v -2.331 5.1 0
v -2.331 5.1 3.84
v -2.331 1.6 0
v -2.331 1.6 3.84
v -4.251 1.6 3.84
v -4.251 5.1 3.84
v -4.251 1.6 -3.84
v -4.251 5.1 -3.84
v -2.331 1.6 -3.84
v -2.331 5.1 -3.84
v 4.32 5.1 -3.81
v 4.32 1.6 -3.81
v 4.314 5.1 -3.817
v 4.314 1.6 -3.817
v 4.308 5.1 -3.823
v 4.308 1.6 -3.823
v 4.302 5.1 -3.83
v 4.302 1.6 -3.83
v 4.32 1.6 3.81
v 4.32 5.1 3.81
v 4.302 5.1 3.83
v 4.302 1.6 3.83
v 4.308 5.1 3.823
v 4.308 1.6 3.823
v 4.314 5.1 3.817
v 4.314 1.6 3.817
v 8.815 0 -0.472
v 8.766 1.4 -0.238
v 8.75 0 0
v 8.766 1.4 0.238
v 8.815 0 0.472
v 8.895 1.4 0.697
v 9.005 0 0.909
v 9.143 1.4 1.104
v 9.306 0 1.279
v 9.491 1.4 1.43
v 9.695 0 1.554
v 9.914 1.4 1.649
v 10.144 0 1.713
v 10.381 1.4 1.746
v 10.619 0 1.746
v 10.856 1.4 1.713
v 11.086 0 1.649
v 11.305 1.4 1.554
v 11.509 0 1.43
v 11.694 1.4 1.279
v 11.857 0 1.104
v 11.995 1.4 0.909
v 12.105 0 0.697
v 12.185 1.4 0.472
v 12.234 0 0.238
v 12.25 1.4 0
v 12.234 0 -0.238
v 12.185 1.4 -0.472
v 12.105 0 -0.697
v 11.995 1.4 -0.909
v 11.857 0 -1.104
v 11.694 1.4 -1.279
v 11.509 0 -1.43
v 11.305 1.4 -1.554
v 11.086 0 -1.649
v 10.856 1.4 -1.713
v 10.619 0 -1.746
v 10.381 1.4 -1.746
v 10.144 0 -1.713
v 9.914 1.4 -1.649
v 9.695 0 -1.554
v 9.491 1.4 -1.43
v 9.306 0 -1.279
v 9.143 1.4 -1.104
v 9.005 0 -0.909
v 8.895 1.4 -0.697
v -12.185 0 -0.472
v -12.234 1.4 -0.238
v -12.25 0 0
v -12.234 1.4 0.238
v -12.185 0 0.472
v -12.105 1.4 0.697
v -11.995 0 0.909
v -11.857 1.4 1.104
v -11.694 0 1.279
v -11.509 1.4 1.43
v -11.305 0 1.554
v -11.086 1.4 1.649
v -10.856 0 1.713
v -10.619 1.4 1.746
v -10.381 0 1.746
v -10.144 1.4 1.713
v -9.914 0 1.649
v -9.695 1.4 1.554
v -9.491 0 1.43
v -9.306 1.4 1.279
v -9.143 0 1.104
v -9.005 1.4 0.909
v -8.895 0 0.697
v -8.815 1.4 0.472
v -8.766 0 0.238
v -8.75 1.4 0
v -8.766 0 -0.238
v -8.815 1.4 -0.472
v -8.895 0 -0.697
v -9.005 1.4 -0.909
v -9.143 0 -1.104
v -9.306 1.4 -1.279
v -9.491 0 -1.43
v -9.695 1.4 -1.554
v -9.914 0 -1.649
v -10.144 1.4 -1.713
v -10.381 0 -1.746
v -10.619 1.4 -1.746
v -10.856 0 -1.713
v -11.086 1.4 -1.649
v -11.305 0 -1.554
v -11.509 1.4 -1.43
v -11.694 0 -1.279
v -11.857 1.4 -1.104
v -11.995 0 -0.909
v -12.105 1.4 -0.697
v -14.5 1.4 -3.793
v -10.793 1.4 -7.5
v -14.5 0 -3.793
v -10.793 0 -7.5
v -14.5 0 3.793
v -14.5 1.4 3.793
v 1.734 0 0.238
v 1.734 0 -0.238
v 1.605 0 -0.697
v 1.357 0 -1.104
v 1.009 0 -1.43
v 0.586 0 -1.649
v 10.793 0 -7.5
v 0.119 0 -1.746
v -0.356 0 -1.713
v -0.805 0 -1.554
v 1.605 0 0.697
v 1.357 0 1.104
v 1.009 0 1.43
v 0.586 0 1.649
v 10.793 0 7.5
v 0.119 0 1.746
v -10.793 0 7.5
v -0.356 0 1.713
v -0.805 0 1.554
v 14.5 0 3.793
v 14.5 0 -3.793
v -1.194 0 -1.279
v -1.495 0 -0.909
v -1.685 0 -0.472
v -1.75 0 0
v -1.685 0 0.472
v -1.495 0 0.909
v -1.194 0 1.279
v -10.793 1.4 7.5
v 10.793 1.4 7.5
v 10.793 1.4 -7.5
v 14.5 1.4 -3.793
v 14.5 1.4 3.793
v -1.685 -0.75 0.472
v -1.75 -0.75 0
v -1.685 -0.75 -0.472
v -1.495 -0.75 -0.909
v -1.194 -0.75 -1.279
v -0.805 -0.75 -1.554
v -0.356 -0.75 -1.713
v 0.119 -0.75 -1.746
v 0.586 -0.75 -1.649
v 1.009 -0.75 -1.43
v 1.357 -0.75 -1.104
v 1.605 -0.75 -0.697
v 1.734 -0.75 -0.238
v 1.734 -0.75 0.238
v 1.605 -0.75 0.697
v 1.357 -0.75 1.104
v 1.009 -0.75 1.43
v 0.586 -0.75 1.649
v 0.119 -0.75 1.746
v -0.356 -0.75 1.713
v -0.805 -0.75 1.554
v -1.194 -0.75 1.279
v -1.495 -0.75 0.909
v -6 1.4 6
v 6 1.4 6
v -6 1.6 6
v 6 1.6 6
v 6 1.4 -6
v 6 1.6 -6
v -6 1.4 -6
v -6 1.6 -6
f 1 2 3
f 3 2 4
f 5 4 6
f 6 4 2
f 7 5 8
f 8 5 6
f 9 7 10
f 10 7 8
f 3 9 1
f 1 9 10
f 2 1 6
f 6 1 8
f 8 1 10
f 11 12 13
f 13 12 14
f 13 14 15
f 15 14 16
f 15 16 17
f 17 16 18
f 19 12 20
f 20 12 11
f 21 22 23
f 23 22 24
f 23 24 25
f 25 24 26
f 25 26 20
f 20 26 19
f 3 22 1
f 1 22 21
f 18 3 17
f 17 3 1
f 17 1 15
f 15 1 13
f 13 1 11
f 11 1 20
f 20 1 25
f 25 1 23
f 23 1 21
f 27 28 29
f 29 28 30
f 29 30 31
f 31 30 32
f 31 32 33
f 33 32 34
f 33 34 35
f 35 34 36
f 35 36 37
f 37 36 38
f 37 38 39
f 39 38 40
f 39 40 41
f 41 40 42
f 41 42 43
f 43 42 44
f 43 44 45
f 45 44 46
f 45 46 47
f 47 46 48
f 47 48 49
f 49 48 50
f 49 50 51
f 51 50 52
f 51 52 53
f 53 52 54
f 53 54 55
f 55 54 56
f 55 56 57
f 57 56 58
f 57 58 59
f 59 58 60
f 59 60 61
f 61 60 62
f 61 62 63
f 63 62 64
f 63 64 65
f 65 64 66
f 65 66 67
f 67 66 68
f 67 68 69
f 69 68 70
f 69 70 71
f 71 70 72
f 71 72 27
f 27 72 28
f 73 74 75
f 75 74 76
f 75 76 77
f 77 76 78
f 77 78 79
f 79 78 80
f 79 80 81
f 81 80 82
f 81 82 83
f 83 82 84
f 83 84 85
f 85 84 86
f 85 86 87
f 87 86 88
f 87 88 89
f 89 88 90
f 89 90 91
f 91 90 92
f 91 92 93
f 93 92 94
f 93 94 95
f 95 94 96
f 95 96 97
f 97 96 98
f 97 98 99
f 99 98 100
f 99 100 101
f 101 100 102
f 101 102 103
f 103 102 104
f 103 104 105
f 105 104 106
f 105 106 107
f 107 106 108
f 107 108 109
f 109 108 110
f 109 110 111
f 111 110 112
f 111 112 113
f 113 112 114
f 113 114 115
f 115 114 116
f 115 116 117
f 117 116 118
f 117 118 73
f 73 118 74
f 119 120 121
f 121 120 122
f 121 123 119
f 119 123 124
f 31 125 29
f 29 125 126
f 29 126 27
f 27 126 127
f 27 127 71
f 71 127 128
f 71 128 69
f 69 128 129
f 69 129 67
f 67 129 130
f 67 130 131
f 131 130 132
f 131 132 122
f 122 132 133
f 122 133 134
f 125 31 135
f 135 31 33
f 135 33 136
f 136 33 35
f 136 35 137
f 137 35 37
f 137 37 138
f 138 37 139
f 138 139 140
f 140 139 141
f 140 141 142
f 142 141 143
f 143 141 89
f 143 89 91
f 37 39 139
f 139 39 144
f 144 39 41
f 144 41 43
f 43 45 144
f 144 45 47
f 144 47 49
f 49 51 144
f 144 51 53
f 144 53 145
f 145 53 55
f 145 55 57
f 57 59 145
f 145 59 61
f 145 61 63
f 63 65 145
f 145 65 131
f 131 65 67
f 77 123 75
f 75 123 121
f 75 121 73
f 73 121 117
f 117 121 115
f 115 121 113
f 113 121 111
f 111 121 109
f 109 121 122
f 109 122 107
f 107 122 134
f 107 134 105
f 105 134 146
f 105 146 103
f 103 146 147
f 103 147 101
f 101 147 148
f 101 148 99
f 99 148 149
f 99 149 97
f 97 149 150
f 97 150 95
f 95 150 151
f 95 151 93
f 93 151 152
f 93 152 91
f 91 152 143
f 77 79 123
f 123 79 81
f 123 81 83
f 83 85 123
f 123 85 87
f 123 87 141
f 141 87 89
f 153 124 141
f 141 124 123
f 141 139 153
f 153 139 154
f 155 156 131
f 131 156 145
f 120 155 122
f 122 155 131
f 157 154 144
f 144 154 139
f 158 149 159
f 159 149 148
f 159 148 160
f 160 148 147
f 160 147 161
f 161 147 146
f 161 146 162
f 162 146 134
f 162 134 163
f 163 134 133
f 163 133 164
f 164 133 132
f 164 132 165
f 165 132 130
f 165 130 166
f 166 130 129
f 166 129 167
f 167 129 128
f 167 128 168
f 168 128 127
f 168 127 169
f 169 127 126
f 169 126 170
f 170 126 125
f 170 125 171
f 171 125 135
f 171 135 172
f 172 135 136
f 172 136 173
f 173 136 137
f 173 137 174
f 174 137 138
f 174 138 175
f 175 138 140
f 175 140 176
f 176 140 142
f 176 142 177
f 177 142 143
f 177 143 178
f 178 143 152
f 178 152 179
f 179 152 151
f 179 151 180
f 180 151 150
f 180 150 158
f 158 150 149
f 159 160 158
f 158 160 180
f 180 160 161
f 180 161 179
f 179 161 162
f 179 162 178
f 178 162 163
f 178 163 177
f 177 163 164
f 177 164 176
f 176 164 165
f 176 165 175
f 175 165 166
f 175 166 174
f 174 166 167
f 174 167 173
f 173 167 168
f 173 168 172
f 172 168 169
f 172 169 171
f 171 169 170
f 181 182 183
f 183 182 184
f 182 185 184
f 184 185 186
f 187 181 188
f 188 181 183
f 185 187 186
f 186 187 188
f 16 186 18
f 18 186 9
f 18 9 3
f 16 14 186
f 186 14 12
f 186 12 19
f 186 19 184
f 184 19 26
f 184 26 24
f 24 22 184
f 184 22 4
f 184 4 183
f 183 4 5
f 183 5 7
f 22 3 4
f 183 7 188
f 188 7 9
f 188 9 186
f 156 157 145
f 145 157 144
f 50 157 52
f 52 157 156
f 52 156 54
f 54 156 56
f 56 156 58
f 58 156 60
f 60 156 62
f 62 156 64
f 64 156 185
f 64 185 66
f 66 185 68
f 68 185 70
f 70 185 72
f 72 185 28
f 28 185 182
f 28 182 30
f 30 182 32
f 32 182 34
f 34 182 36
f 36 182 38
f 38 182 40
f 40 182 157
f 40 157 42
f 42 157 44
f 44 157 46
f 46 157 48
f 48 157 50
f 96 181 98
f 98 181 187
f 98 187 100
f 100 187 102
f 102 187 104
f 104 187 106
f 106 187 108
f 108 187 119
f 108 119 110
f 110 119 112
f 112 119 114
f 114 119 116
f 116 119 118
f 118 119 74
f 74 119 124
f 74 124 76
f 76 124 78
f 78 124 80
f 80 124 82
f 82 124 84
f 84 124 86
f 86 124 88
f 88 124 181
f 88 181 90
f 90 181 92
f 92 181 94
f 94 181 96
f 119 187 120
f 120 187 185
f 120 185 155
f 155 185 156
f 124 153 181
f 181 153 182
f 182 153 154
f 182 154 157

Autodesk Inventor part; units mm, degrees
ref_plane "YZ Plane" through (0, 0, 0) normal (1, 0, 0) x (0, 1, 0)
ref_plane "XZ Plane" through (0, 0, 0) normal (0, 1, 0) x (-1, 0, 0)
ref_plane "XY Plane" through (0, 0, 0) normal (0, 0, 1) x (1, 0, 0)
sketch "Szkic1" plane through (0, 0, 0) normal (0, 1, 0) x (-1, 0, 0)
  line L0 (-15, 8) -> (15, 8)
  line L1 (15, 8) -> (15, -8)
  line L2 (15, -8) -> (-15, -8)
  line L3 (-15, -8) -> (-15, 8)
  line L4 (-15, 8) -> (15, -8) construction
  line L5 (15, 8) -> (-15, -8) construction
  line L6 (-6, 6) -> (6, 6)
  line L7 (6, 6) -> (6, -6)
  line L8 (6, -6) -> (-6, -6)
  line L9 (-6, -6) -> (-6, 6)
  line L10 (-6, 6) -> (6, -6) construction
  line L11 (6, 6) -> (-6, -6) construction
  circle A0 centre (0, 0) radius 1.75
  dimension "d0" = 30
  dimension "d1" = 16
  dimension "d2" = 12
  dimension "d3" = 12
  dimension "d4" = 3.5
extrude "Wyciągnięcie proste1" add sketch "Szkic1" along normal blind 1.4 contours L0 L1 L2 L3 | L6 L7 L8 L9 | A0
extrude "Wyciągnięcie proste2" add sketch "Szkic1" along normal blind 1.6 contours L6 L7 L8 L9 | A0
extrude "Wyciągnięcie proste3" cut sketch "Szkic1" along normal blind 1 contours A0
chamfer "Faza1" distance 4 angle 45 4 edges at (15, 0.7, 8) (15, 0.7, -8) (-15, 0.7, 8) (-15, 0.7, -8)
offset faces "Rozmiar1" outward -0.5 faces at (-3.6667, 0.4667, 8) (-12.3333, 0.4667, 6.6667) (12.3333, 0.4667, 6.6667) (15, 0.4667, 1.3333) (13.6667, 0.4667, -5.3333) (3.6667, 0.4667, -8) (-13.6667, 0.4667, -5.3333) (-15, 0.4667, -1.3333)
sketch "Szkic2" plane through (0, 1.4, 0) normal (0, 1, 0) x (1, 0, 0)
  line L0 (-6, -6) -> (6, -6) projected
  line L1 (-6, 6) -> (6, 6) projected
  line L2 (-6, -6) -> (6, -6)
  line L3 (6, -6) -> (6, 6)
  line L4 (6, 6) -> (-6, 6)
  line L5 (-6, 6) -> (-6, -6)
  line L6 (0, 0) -> (-10.5, 0)
  line L7 (-10.5, 0) -> (10.5, 0)
  circle A0 centre (10.5, 0) radius 1.75
  circle A1 centre (-10.5, 0) radius 1.75
  dimension "d16" = 10.5
  dimension "d17" = 21
  dimension "d18" = 3.5
  dimension "d19" = 3.5
extrude "Wyciągnięcie proste4" cut sketch "Szkic2" against normal blind 10 contours A0 | A1
sketch "Szkic4" plane through (0, 1.6, 0) normal (0, 1, 0) x (1, 0, 0)
  line L0 (-4.2511, -3.84) -> (-4.2511, 0)
  line L1 (5.76, 0) -> (4.32, 0)
  line L2 (-2.3311, 0) -> (-2.3311, 3.84)
  line L3 (4.32, 0) -> (4.32, 3.84)
  line L4 (0, -5.76) -> (0, 5.76)
  line L5 (0, 5.76) -> (0, -5.76)
  line L6 (5.76, -5.76) -> (-5.76, -5.76)
  line L7 (-5.76, -5.76) -> (5.76, -5.76)
  line L8 (4.32, 3.84) -> (-2.3311, 0)
  line L9 (5.76, -5.76) -> (5.76, 5.76)
  line L10 (5.76, 5.76) -> (5.76, -5.76)
  line L11 (5.76, 0) -> (-5.76, 0)
  line L12 (5.76, 5.76) -> (-5.76, 5.76)
  line L13 (-5.76, 5.76) -> (5.76, 5.76)
  line L14 (5.76, 5.76) -> (-5.76, 5.76)
  circle A0 centre (0, 0) radius 5.76
  line L15 (-5.76, -5.76) -> (-5.76, 5.76)
  line L16 (-5.76, 5.76) -> (-5.76, -5.76)
  line L17 (-5.76, 5.76) -> (-5.76, -5.76)
  line L18 (4.32, 0) -> (4.32, -3.84)
  line L19 (4.32, -3.84) -> (-2.3311, 0)
  line L20 (-2.3311, 0) -> (-2.3311, -3.84)
  line L21 (-4.2511, 3.84) -> (-4.2511, 0)
  line L22 (-2.3311, -3.84) -> (-4.2511, -3.84)
  line L23 (-2.3311, 3.84) -> (-4.2511, 3.84)
  line L24 (6, -6) -> (-6, -6) projected
  line L25 (6, 6) -> (-6, 6) projected
  line L26 (5.76, -5.76) -> (-5.76, -5.76)
  line L27 (-5.76, -5.76) -> (-5.76, 5.76)
  line L28 (-5.76, 5.76) -> (5.76, 5.76)
  line L29 (5.76, 5.76) -> (5.76, -5.76)
  point P0 (-16.6045, -17.9068)
  point P1 (5.76, -5.76)
  point P2 (-5.76, -5.76)
  point P3 (4.32, 3.8099)
  point P4 (4.3023, 3.8298)
  point P5 (4.3023, -3.8298)
  point P6 (4.32, -3.8099)
extrude "Wyciągnięcie proste5" add sketch "Szkic4" along normal blind 3.5 contours L0 L11 L20 L22 | L21 L23 L2 L11 | L8 L4 L11 | L11 L4 L19 | L8 A0 L3 L11 L4 | L11 L18 A0 L19 L4
move faces "Przesuń1" translate (0, -1.75, 0) faces at (-0.0229, 1, 0.3868)
properties part number "guzik"
